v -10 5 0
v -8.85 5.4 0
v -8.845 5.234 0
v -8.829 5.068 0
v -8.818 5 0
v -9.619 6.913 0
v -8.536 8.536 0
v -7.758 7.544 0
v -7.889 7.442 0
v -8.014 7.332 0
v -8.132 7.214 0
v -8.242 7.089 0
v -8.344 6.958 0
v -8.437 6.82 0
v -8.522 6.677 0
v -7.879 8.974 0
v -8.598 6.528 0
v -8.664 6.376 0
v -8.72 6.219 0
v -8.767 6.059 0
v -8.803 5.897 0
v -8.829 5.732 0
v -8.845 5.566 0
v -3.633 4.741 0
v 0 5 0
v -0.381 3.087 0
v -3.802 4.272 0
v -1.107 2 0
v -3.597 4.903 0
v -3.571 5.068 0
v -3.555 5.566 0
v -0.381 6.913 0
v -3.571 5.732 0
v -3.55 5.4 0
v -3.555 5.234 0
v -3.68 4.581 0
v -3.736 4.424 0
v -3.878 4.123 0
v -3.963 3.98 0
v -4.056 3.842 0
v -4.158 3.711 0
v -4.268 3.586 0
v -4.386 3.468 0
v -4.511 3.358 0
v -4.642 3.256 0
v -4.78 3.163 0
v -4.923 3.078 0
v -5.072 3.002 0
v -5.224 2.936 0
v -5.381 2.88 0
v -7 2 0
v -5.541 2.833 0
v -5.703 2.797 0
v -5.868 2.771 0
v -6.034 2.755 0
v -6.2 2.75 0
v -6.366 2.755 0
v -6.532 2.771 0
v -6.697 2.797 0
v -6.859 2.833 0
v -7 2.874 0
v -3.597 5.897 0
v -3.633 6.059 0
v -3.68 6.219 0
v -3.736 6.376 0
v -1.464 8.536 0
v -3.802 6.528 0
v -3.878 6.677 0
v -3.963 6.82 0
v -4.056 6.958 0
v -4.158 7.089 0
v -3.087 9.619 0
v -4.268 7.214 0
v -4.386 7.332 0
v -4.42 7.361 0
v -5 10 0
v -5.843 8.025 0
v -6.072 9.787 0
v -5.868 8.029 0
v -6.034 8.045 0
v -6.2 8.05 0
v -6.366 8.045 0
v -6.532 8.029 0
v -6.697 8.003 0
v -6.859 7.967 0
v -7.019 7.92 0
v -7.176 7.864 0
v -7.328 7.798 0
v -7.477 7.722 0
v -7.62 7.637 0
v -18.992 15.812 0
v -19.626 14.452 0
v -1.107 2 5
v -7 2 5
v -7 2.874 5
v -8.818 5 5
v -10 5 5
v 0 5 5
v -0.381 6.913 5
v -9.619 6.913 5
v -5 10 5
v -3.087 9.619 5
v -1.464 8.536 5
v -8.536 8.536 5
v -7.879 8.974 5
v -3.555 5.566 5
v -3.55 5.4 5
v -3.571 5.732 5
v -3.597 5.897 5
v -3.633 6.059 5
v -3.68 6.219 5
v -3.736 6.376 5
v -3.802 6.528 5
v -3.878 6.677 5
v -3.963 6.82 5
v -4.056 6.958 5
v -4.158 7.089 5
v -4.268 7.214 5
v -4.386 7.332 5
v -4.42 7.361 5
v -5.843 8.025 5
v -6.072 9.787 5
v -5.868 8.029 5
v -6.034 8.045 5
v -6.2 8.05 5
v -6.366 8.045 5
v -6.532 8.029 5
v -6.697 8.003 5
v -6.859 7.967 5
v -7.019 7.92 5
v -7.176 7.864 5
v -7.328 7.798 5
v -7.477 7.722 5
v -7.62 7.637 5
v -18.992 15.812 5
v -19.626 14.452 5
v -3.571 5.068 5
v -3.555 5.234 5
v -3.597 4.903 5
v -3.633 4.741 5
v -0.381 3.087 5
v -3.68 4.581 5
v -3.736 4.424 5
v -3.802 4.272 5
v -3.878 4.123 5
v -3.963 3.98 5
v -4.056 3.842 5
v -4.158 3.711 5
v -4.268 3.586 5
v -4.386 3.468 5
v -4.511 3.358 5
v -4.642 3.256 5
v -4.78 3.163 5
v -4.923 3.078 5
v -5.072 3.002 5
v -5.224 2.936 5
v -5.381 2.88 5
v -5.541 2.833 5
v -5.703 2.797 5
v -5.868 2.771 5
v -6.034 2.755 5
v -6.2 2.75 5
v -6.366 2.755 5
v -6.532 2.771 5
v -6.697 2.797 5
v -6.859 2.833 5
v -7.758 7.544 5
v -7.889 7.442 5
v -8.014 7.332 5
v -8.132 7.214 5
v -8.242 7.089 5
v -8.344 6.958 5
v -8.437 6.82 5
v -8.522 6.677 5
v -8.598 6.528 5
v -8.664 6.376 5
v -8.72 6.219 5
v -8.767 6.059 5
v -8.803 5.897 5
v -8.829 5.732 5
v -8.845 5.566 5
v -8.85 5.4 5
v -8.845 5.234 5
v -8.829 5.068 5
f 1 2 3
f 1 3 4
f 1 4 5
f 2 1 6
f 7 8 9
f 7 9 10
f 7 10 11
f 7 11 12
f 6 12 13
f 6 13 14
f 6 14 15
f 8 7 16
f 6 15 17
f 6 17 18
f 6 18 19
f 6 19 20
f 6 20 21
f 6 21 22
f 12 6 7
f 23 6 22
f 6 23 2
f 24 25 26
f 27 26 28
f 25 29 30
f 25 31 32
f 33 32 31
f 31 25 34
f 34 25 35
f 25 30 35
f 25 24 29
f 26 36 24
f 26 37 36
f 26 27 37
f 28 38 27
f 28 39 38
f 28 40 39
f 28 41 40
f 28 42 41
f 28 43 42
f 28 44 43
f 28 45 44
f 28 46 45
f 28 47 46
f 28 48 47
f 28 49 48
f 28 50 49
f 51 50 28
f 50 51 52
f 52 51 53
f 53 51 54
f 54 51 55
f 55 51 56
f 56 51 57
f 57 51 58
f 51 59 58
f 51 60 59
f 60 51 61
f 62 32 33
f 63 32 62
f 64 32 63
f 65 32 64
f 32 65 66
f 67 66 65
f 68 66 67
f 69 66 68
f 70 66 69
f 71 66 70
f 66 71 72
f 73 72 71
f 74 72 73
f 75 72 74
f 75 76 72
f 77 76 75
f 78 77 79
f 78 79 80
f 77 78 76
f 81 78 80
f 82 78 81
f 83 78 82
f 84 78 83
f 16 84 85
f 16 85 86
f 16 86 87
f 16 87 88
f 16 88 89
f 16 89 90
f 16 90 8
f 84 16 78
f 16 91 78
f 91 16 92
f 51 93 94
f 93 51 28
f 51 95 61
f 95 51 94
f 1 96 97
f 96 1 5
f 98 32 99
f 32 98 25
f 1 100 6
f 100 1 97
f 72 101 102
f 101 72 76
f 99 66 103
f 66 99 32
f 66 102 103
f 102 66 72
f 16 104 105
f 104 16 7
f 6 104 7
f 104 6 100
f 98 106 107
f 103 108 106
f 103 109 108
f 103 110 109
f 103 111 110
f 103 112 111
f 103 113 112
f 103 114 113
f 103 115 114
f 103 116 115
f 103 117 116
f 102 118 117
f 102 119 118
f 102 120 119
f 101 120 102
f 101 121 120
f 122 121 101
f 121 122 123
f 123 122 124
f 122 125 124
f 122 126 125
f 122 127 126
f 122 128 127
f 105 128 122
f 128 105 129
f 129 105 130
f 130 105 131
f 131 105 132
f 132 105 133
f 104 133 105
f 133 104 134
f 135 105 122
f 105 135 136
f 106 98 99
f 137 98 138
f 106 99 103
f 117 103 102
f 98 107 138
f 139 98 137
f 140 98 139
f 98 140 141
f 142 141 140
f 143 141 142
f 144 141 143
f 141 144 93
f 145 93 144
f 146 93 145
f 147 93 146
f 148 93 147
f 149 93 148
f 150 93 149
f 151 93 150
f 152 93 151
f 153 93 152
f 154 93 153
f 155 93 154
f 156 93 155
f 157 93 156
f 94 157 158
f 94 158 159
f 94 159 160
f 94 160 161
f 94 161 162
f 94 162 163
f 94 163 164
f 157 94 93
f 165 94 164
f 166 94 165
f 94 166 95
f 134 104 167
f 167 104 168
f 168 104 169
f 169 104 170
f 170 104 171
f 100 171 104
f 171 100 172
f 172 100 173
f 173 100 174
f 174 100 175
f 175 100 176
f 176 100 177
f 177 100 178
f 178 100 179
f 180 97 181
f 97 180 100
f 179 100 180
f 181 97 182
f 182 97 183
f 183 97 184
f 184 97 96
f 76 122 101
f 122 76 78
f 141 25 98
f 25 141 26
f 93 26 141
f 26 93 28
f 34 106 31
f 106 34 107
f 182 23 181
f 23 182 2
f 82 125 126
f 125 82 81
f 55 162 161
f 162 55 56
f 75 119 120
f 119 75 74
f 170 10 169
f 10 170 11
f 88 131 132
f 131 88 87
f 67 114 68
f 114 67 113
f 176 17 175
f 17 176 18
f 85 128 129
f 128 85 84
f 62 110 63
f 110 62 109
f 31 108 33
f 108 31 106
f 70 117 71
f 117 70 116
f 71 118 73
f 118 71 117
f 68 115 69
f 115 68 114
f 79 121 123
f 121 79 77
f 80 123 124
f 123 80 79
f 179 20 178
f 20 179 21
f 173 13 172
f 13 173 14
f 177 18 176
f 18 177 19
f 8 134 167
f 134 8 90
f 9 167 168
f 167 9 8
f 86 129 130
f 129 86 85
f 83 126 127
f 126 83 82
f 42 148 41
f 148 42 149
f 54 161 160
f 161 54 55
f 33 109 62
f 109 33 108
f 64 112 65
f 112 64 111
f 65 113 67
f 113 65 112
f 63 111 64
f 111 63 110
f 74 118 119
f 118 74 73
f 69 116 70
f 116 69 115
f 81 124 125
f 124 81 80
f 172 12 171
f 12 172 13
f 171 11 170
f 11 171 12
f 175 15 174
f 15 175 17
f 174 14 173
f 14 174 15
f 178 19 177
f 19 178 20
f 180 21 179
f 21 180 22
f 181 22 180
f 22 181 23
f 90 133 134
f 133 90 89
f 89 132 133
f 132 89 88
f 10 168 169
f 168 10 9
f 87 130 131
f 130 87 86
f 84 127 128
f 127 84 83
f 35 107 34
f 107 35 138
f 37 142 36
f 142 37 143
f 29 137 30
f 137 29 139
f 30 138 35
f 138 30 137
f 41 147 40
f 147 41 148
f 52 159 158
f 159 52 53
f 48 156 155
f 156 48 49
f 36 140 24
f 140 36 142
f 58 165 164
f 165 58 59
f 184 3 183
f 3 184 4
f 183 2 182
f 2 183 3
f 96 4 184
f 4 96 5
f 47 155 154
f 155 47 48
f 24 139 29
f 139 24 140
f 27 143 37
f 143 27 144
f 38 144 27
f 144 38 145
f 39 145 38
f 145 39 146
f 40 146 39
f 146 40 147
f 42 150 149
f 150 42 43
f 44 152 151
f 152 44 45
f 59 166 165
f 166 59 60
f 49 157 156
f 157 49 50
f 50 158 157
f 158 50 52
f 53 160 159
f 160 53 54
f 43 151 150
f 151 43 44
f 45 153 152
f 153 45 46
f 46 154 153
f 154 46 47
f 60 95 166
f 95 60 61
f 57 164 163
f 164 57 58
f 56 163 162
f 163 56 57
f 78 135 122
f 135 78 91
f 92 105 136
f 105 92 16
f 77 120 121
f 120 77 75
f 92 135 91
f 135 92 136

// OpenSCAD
//include <relativity.scad>

radio_borde = 10/2;
radio_pajita = 5.3/2;
altura = 5;


varandilla();
difference() {
  difference() {
    soporte(altura);
  }
  taladros_pagitas();
  quitar_material();
}


module soporte(altura) {
  posicion_soporte = [-5, 5, 0];
  hull() {
    translate(posicion_soporte)
    cylinder(r=radio_borde, h=altura);
  }
}

module varandilla() {
  translate([-1.5, 6, 0]) {
    rotate([0, 0, 65]) {
      cube(size=[1.5, 20, 5]);
    }
  }
}

module taladros_pagitas() {
  altura_taladro = 40;
  posicion_taladro = [-6.2, 5.4, -1];

    translate(posicion_taladro)
      #cylinder(r=radio_pajita, h=altura_taladro, $fn=100);
}

module quitar_material() {
  translate([-17, -2, 0])
    cube(size=[17, 4, 10]);
  translate([-12, -5, 0])
    cube(size=[5, 10, 10]);
}
